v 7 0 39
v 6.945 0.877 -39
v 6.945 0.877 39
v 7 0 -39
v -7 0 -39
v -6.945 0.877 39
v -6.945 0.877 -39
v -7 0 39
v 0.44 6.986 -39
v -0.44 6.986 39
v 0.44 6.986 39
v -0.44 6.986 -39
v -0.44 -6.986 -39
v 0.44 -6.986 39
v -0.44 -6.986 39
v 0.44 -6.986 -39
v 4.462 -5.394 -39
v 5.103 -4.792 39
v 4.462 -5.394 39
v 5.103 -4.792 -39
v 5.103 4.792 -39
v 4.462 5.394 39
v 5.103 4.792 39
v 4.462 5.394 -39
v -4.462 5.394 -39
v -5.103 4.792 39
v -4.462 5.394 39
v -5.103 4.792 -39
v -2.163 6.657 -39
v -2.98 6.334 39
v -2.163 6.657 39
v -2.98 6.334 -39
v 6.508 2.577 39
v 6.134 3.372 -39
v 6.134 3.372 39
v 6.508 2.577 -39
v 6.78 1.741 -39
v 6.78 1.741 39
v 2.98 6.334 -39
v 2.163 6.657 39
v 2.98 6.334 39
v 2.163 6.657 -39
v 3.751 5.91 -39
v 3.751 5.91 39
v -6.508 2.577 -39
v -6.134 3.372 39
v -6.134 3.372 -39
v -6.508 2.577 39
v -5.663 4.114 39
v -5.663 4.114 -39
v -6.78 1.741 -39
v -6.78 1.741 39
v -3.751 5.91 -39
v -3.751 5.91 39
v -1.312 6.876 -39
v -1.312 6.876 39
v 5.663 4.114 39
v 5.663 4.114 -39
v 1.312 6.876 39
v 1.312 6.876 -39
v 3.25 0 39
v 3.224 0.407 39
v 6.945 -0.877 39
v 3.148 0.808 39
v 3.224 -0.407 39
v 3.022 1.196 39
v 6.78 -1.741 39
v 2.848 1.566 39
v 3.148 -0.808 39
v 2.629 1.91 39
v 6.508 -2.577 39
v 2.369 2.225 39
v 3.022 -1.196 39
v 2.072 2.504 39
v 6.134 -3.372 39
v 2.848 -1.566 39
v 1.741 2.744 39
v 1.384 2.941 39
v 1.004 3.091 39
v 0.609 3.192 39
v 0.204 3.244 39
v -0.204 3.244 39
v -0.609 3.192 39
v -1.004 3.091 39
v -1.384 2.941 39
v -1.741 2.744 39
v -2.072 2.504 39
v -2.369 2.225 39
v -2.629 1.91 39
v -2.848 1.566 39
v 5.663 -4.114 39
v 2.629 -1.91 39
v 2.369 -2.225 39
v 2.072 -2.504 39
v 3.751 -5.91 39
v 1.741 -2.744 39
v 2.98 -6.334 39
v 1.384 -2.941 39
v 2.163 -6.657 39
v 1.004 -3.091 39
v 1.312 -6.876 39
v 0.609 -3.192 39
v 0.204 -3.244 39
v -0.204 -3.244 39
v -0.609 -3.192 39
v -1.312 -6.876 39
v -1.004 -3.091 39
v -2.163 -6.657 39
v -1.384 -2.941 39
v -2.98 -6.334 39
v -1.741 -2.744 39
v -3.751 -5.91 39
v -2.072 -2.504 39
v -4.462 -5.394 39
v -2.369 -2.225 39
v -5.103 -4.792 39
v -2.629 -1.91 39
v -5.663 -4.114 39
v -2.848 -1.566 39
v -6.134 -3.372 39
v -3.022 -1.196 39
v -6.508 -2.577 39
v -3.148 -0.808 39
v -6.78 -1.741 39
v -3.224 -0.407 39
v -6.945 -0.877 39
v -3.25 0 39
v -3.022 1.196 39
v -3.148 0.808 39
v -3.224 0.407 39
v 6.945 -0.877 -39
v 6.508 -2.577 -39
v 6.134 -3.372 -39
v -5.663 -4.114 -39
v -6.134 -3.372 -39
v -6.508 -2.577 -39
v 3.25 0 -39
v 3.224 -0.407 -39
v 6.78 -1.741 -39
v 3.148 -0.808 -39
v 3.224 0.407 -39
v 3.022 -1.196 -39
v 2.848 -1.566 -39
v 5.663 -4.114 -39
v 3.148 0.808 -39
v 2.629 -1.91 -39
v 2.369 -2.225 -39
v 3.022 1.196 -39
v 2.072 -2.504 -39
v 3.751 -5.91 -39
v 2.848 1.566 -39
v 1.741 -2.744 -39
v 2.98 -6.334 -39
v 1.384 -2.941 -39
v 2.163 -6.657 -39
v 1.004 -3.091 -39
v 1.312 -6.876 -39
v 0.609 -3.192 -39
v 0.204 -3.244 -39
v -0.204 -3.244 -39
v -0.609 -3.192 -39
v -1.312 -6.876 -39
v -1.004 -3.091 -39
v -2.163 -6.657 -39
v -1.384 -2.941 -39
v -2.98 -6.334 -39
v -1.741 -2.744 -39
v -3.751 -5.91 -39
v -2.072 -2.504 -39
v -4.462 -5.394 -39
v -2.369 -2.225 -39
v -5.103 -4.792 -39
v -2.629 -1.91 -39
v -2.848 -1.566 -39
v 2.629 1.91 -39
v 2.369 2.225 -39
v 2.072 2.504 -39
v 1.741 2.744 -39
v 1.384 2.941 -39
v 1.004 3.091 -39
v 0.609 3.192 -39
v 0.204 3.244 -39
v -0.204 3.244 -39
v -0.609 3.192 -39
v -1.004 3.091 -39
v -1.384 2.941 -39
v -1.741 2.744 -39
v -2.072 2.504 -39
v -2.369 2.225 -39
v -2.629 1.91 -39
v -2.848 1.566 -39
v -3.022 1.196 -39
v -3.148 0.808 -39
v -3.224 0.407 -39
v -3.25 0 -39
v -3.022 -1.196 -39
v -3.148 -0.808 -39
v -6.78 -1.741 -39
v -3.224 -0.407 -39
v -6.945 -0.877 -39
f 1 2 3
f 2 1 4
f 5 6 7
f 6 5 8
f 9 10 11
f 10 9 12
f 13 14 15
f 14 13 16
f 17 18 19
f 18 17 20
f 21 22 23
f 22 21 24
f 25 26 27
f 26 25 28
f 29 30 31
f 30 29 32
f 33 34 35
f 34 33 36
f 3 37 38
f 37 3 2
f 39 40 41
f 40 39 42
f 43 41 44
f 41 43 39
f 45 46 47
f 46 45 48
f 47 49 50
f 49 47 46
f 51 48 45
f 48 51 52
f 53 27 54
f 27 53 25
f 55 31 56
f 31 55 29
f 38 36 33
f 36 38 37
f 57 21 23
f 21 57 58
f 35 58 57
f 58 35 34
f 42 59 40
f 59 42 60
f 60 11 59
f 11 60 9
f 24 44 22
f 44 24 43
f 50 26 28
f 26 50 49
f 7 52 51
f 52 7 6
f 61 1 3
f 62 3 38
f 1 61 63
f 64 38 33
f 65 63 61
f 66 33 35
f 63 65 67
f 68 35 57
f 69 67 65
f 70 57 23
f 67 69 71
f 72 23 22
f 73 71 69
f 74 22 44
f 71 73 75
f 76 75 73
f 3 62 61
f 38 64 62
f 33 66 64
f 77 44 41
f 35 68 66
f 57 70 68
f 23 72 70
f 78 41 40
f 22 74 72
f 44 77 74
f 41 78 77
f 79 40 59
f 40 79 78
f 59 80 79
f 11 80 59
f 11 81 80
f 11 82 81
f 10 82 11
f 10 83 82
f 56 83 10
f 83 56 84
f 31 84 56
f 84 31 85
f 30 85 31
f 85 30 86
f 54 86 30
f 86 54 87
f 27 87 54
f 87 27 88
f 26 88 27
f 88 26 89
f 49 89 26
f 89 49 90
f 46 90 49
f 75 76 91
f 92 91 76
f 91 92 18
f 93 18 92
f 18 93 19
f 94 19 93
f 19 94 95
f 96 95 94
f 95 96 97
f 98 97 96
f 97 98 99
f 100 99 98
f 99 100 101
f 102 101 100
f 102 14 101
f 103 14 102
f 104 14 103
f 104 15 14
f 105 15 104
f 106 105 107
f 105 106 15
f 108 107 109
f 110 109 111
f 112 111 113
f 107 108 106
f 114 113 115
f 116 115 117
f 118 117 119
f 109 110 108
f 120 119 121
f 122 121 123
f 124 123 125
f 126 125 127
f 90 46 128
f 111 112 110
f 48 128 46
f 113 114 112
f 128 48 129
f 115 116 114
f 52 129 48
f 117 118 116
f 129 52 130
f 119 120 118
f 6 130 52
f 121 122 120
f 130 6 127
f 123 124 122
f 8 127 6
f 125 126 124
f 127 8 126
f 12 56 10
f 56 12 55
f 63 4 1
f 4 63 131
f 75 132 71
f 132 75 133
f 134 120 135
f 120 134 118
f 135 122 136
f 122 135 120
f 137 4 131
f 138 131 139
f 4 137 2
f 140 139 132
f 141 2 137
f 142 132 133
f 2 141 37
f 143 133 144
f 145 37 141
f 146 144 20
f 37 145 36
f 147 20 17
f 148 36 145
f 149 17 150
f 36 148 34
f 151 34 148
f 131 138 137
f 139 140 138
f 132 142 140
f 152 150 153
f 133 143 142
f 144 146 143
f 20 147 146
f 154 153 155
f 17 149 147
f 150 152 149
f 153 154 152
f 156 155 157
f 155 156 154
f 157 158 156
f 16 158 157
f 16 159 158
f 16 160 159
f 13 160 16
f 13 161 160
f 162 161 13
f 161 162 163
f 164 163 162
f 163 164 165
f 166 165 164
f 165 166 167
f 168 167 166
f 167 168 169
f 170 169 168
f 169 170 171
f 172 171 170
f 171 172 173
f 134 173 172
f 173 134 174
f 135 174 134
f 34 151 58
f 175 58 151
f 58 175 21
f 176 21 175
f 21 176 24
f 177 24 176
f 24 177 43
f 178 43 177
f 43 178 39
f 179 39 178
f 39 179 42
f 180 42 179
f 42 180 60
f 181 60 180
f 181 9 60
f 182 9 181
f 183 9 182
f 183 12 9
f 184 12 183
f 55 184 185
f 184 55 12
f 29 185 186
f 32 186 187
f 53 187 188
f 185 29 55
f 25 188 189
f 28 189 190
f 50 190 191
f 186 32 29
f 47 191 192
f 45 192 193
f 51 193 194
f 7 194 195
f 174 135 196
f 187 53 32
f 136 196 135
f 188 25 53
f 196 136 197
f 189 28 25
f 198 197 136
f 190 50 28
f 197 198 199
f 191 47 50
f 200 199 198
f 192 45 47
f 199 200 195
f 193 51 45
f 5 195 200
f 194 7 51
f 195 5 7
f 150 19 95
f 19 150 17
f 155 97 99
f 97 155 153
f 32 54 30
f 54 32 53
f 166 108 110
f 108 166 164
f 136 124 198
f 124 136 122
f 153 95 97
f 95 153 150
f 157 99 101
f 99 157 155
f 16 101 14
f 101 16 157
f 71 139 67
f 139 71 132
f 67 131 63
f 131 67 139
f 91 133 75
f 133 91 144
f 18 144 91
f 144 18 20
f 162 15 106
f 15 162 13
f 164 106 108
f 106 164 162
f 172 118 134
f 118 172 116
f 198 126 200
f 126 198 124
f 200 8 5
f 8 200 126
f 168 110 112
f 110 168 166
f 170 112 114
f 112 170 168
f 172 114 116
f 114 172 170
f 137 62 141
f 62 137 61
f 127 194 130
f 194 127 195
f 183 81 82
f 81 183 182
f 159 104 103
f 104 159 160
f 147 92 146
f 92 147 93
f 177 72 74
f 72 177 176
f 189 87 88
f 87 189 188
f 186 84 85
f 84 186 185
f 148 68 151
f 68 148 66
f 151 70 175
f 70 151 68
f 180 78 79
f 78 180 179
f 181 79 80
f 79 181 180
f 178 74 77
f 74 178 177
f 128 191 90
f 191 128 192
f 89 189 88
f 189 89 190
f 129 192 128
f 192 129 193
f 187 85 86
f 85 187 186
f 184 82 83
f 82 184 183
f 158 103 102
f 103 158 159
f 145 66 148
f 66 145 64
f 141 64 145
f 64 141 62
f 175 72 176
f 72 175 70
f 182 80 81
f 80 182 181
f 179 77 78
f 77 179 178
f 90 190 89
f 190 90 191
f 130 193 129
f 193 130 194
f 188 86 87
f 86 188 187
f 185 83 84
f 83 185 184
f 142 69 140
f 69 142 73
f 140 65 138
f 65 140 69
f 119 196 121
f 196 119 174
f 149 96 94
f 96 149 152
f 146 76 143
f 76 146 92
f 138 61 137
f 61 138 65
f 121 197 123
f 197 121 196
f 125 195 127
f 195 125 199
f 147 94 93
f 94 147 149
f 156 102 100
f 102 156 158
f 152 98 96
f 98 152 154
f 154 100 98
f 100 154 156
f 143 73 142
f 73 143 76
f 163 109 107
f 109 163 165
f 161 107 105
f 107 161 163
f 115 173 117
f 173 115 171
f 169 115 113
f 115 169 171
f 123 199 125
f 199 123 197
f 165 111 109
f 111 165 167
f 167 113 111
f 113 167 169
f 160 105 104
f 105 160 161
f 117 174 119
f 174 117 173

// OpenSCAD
$fn = 50;


difference() {
	union() {
		translate(v = [0, 0, -39.0000000000]) {
			cylinder(h = 78, r = 7.0000000000);
		}
	}
	union() {
		translate(v = [0, 0, -100.0000000000]) {
			cylinder(h = 200, r = 3.2500000000);
		}
	}
}
